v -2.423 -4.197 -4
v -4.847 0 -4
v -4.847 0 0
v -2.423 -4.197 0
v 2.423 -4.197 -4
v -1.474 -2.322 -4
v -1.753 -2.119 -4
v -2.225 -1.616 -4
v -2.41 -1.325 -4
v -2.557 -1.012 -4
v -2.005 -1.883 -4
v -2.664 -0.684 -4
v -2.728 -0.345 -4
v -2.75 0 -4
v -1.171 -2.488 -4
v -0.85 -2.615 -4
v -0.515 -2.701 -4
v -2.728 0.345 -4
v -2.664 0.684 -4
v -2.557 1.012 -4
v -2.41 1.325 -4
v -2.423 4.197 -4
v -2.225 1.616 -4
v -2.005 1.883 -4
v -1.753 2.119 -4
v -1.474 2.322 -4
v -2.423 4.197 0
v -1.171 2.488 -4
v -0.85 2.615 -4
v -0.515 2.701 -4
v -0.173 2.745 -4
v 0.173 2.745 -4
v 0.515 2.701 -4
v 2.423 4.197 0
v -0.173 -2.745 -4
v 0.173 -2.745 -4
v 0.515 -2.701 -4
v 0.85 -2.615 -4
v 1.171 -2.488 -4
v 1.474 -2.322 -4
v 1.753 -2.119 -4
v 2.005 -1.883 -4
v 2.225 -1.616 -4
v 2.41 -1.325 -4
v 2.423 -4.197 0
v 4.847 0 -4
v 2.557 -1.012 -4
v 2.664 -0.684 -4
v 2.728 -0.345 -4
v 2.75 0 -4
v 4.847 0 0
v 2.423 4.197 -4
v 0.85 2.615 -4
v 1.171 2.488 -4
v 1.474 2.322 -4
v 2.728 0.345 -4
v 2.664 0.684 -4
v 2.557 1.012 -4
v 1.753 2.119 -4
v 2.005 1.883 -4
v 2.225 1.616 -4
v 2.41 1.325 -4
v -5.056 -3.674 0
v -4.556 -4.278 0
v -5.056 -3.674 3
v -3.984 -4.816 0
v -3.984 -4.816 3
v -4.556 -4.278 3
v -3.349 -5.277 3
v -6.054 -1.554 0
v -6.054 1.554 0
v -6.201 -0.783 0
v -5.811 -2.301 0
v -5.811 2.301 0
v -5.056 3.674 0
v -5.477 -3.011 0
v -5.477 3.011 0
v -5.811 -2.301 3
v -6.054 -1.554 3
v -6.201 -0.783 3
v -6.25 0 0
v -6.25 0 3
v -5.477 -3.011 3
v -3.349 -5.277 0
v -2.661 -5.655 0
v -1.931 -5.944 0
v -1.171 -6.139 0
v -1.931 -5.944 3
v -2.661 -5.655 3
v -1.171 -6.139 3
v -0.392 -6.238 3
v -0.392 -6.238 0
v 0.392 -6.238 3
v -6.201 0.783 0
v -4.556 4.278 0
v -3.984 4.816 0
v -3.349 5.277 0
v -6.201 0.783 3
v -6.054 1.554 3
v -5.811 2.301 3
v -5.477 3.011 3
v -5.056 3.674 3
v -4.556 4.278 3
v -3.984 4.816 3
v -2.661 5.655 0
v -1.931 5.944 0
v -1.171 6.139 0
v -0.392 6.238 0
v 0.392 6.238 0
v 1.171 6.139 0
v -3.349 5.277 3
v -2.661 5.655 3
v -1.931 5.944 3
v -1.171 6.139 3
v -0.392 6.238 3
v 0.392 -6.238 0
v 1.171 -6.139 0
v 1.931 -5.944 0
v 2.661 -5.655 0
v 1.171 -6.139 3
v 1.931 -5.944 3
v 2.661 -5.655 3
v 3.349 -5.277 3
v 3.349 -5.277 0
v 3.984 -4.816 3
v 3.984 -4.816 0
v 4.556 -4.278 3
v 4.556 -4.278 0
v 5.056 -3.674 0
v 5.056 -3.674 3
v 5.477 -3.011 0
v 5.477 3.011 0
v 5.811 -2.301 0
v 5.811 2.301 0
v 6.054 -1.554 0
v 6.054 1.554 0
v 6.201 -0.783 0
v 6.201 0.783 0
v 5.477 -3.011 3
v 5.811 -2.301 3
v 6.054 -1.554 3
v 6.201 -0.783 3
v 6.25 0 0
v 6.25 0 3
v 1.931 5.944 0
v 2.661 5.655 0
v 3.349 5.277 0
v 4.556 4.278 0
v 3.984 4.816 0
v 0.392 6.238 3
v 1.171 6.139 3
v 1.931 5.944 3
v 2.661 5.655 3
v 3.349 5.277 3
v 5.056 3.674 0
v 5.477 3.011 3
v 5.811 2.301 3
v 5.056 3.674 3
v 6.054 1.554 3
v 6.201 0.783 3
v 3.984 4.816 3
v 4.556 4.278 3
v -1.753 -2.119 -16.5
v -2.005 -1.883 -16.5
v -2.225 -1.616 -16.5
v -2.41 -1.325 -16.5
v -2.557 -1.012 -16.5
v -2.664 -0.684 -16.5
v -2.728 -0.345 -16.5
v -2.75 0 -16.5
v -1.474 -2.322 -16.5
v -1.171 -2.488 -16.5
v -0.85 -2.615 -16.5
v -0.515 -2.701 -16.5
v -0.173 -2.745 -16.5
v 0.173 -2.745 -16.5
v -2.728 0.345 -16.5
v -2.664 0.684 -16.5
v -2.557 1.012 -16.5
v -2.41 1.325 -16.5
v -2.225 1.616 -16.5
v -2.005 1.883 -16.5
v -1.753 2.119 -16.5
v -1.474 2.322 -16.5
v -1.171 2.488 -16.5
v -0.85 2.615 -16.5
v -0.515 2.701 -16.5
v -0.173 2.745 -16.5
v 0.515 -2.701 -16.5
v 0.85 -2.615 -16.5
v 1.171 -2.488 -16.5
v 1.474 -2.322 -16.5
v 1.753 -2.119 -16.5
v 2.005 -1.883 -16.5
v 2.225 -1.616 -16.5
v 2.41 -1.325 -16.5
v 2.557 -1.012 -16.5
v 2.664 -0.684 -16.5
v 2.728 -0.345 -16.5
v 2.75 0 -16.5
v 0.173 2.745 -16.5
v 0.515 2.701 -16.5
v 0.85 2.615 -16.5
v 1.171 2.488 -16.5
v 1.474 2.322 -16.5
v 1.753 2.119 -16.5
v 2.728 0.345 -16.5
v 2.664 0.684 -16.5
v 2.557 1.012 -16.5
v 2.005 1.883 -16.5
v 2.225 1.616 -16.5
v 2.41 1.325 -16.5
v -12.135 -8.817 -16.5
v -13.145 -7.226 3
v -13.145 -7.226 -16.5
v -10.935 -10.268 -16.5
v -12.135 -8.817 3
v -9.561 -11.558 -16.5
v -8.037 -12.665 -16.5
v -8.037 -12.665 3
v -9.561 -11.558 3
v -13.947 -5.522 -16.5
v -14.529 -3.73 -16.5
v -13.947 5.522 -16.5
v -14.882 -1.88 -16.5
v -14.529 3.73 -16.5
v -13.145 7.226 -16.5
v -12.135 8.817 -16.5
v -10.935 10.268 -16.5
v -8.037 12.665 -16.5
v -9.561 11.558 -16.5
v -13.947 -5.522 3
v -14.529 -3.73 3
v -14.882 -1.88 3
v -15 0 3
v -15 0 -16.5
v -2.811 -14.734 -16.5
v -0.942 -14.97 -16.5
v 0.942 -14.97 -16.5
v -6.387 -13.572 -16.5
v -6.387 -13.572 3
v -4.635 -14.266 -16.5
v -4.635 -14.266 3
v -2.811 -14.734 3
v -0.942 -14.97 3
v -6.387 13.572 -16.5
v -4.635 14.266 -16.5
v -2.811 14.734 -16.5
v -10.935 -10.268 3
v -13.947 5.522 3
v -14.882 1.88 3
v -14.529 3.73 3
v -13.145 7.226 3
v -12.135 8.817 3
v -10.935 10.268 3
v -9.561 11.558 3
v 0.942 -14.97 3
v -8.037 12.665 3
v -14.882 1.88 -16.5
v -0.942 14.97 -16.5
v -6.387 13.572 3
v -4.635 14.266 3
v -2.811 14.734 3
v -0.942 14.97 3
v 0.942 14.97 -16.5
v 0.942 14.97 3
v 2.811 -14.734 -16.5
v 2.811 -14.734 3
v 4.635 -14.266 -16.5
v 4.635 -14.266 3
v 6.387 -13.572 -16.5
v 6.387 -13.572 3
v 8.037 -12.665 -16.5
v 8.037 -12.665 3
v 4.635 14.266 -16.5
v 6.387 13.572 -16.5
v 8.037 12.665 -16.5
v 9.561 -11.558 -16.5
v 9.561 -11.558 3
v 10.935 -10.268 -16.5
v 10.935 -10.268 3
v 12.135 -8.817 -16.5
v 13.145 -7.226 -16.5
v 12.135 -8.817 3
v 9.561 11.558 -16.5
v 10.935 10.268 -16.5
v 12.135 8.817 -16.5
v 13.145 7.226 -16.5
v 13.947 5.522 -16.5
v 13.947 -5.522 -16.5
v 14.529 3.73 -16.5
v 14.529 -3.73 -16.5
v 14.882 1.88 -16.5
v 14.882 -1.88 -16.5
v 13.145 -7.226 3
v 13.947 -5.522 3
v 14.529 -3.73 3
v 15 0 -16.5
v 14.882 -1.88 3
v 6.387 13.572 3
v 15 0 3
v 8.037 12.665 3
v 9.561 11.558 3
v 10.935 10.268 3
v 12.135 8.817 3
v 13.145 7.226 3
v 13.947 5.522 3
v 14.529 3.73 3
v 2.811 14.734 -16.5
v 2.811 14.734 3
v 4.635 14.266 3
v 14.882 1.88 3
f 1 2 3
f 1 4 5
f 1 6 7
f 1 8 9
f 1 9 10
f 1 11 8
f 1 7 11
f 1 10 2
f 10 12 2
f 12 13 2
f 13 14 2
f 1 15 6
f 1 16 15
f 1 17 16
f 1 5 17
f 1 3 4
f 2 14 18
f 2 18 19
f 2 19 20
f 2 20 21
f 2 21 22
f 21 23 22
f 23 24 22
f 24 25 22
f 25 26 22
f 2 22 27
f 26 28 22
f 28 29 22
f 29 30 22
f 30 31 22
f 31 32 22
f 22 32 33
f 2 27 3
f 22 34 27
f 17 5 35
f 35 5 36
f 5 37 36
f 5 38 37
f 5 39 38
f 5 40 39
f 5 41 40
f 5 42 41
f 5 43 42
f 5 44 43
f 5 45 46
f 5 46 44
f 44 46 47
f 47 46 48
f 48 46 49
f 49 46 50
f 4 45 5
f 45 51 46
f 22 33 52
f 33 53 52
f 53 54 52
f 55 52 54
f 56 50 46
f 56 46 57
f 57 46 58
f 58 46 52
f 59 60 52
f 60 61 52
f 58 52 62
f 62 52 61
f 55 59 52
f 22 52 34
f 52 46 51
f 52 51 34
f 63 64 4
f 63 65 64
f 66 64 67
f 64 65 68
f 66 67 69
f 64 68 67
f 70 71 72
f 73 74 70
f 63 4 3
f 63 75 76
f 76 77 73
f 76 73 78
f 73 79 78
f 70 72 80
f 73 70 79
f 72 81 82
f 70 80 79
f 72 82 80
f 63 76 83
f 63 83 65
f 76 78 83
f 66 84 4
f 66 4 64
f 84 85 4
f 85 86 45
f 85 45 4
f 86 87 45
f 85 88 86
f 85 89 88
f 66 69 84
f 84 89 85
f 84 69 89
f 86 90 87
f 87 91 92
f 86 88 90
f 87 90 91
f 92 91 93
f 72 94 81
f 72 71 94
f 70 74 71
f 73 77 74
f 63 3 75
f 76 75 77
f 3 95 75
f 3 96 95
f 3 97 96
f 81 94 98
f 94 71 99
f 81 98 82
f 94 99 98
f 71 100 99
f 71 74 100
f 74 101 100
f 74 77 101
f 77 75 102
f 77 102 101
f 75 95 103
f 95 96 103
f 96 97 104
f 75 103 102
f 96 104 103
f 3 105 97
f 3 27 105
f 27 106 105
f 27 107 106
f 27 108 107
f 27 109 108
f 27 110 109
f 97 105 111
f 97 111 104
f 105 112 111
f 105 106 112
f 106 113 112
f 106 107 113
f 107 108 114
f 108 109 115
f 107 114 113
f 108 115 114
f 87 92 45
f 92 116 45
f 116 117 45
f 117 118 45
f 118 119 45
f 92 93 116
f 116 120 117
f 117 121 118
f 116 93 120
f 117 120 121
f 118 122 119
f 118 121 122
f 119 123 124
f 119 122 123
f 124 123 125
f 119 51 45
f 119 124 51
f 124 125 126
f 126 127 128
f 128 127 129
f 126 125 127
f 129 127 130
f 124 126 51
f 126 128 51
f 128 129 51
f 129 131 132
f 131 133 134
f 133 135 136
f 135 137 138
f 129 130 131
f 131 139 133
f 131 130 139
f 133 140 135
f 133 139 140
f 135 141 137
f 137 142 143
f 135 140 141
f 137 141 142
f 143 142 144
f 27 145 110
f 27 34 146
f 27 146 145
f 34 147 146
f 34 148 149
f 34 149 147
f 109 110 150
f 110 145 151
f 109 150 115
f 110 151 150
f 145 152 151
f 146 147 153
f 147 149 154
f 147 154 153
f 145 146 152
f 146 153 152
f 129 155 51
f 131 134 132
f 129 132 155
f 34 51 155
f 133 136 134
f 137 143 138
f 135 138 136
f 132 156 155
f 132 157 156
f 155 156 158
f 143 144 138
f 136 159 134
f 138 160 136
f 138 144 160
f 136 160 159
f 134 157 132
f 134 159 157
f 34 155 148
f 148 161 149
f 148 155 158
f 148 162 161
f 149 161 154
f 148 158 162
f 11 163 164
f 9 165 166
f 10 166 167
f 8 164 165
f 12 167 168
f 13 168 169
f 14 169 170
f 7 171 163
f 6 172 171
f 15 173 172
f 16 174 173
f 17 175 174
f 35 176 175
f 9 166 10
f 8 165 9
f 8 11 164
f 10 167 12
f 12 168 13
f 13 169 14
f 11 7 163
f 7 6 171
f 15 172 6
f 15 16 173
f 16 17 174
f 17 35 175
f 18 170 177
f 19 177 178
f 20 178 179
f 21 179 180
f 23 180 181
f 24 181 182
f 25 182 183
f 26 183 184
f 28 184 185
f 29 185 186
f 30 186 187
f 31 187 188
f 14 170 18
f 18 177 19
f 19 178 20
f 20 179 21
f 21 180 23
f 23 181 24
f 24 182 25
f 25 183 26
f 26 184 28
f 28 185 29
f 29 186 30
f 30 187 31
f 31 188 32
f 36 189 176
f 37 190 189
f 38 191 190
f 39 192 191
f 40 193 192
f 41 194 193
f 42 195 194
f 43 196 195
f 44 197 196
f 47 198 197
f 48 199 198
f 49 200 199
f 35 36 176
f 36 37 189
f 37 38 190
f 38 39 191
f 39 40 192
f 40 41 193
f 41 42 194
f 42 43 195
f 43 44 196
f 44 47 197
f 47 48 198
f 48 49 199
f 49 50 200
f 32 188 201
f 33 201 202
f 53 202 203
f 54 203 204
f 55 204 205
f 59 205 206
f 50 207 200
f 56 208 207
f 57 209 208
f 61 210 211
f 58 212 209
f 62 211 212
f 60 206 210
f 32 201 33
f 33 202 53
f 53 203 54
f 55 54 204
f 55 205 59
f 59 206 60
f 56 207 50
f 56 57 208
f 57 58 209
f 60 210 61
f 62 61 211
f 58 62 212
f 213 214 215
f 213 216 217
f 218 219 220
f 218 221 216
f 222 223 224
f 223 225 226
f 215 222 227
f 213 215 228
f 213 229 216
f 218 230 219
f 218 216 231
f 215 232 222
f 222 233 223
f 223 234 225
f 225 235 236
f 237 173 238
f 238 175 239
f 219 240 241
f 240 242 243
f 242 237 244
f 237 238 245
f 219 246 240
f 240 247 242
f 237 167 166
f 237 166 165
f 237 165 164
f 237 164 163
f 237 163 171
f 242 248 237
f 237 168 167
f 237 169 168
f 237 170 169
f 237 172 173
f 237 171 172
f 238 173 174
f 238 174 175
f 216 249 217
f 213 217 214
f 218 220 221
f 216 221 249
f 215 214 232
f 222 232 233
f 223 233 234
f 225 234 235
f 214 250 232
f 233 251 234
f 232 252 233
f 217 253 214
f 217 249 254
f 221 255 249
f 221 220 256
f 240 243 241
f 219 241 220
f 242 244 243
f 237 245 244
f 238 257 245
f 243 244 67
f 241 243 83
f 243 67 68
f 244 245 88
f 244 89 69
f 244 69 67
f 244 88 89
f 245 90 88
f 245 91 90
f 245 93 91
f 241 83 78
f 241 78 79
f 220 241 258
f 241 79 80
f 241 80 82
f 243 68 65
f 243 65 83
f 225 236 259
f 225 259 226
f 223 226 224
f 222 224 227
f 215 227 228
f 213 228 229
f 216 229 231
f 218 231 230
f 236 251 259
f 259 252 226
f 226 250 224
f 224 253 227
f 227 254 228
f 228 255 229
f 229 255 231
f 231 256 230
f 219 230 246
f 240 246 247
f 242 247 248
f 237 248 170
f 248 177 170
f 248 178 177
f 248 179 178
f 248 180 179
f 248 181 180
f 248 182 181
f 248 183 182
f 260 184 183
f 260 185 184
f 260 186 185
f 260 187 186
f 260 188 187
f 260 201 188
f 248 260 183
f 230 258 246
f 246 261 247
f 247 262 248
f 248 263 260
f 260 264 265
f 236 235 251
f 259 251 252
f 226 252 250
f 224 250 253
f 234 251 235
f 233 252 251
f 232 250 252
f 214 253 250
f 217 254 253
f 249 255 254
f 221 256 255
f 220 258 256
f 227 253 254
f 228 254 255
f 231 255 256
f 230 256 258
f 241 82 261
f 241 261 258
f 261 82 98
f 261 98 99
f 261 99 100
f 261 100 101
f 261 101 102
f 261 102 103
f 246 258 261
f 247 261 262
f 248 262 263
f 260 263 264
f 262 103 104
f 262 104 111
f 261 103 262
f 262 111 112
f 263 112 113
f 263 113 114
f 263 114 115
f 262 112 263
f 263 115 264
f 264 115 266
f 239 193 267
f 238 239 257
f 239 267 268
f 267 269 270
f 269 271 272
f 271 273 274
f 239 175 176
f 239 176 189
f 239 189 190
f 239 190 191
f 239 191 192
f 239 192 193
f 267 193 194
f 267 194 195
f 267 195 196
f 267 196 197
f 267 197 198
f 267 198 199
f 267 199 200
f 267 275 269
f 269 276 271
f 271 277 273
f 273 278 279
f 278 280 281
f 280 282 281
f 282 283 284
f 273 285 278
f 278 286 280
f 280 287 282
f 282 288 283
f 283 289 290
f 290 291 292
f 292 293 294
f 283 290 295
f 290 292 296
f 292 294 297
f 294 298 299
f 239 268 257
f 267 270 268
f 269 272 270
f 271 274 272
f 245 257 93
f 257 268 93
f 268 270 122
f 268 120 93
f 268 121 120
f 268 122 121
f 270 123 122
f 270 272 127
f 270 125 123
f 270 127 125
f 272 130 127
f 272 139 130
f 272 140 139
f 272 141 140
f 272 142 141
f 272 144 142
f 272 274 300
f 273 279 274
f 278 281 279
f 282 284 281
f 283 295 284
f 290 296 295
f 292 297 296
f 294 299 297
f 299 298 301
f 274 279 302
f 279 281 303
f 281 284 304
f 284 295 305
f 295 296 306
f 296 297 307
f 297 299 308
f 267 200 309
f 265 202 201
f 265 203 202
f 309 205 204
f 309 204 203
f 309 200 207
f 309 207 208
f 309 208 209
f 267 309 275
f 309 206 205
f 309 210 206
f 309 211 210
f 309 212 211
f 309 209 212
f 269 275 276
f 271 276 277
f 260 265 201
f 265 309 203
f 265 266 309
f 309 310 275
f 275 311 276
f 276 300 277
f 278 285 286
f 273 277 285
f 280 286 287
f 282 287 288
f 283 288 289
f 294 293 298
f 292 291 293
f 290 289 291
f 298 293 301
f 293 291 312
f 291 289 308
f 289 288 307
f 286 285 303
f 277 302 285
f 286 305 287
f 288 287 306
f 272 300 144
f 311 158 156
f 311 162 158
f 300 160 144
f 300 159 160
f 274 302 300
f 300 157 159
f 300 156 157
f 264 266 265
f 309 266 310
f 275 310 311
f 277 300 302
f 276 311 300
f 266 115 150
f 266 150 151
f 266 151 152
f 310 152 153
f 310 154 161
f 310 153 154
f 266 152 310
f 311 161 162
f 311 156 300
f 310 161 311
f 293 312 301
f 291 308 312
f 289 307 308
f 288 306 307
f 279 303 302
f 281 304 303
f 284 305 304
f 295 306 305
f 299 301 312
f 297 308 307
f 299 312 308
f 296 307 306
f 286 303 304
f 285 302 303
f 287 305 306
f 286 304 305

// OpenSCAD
$fn = 50;


difference() {
	union() {
		translate(v = [0, 0, -16.5000000000]) {
			cylinder(h = 19.5000000000, r = 15.0000000000);
		}
	}
	union() {
		translate(v = [0, 0, 0]) {
			rotate(a = [0, 0, 0]) {
				difference() {
					union() {
						translate(v = [0, 0, -4]) {
							linear_extrude(height = 4) {
								polygon(points = [[4.8468000000, 0.0000000000], [2.4234000000, 4.1974519271], [-2.4234000000, 4.1974519271], [-4.8468000000, 0.0000000000], [-2.4234000000, -4.1974519271], [2.4234000000, -4.1974519271]]);
							}
						}
					}
					union();
				}
			}
		}
		#cylinder(h = 3, r = 6.2500000000);
		#translate(v = [0, 0, -100.0000000000]) {
			cylinder(h = 200, r = 2.7500000000);
		}
	}
}
